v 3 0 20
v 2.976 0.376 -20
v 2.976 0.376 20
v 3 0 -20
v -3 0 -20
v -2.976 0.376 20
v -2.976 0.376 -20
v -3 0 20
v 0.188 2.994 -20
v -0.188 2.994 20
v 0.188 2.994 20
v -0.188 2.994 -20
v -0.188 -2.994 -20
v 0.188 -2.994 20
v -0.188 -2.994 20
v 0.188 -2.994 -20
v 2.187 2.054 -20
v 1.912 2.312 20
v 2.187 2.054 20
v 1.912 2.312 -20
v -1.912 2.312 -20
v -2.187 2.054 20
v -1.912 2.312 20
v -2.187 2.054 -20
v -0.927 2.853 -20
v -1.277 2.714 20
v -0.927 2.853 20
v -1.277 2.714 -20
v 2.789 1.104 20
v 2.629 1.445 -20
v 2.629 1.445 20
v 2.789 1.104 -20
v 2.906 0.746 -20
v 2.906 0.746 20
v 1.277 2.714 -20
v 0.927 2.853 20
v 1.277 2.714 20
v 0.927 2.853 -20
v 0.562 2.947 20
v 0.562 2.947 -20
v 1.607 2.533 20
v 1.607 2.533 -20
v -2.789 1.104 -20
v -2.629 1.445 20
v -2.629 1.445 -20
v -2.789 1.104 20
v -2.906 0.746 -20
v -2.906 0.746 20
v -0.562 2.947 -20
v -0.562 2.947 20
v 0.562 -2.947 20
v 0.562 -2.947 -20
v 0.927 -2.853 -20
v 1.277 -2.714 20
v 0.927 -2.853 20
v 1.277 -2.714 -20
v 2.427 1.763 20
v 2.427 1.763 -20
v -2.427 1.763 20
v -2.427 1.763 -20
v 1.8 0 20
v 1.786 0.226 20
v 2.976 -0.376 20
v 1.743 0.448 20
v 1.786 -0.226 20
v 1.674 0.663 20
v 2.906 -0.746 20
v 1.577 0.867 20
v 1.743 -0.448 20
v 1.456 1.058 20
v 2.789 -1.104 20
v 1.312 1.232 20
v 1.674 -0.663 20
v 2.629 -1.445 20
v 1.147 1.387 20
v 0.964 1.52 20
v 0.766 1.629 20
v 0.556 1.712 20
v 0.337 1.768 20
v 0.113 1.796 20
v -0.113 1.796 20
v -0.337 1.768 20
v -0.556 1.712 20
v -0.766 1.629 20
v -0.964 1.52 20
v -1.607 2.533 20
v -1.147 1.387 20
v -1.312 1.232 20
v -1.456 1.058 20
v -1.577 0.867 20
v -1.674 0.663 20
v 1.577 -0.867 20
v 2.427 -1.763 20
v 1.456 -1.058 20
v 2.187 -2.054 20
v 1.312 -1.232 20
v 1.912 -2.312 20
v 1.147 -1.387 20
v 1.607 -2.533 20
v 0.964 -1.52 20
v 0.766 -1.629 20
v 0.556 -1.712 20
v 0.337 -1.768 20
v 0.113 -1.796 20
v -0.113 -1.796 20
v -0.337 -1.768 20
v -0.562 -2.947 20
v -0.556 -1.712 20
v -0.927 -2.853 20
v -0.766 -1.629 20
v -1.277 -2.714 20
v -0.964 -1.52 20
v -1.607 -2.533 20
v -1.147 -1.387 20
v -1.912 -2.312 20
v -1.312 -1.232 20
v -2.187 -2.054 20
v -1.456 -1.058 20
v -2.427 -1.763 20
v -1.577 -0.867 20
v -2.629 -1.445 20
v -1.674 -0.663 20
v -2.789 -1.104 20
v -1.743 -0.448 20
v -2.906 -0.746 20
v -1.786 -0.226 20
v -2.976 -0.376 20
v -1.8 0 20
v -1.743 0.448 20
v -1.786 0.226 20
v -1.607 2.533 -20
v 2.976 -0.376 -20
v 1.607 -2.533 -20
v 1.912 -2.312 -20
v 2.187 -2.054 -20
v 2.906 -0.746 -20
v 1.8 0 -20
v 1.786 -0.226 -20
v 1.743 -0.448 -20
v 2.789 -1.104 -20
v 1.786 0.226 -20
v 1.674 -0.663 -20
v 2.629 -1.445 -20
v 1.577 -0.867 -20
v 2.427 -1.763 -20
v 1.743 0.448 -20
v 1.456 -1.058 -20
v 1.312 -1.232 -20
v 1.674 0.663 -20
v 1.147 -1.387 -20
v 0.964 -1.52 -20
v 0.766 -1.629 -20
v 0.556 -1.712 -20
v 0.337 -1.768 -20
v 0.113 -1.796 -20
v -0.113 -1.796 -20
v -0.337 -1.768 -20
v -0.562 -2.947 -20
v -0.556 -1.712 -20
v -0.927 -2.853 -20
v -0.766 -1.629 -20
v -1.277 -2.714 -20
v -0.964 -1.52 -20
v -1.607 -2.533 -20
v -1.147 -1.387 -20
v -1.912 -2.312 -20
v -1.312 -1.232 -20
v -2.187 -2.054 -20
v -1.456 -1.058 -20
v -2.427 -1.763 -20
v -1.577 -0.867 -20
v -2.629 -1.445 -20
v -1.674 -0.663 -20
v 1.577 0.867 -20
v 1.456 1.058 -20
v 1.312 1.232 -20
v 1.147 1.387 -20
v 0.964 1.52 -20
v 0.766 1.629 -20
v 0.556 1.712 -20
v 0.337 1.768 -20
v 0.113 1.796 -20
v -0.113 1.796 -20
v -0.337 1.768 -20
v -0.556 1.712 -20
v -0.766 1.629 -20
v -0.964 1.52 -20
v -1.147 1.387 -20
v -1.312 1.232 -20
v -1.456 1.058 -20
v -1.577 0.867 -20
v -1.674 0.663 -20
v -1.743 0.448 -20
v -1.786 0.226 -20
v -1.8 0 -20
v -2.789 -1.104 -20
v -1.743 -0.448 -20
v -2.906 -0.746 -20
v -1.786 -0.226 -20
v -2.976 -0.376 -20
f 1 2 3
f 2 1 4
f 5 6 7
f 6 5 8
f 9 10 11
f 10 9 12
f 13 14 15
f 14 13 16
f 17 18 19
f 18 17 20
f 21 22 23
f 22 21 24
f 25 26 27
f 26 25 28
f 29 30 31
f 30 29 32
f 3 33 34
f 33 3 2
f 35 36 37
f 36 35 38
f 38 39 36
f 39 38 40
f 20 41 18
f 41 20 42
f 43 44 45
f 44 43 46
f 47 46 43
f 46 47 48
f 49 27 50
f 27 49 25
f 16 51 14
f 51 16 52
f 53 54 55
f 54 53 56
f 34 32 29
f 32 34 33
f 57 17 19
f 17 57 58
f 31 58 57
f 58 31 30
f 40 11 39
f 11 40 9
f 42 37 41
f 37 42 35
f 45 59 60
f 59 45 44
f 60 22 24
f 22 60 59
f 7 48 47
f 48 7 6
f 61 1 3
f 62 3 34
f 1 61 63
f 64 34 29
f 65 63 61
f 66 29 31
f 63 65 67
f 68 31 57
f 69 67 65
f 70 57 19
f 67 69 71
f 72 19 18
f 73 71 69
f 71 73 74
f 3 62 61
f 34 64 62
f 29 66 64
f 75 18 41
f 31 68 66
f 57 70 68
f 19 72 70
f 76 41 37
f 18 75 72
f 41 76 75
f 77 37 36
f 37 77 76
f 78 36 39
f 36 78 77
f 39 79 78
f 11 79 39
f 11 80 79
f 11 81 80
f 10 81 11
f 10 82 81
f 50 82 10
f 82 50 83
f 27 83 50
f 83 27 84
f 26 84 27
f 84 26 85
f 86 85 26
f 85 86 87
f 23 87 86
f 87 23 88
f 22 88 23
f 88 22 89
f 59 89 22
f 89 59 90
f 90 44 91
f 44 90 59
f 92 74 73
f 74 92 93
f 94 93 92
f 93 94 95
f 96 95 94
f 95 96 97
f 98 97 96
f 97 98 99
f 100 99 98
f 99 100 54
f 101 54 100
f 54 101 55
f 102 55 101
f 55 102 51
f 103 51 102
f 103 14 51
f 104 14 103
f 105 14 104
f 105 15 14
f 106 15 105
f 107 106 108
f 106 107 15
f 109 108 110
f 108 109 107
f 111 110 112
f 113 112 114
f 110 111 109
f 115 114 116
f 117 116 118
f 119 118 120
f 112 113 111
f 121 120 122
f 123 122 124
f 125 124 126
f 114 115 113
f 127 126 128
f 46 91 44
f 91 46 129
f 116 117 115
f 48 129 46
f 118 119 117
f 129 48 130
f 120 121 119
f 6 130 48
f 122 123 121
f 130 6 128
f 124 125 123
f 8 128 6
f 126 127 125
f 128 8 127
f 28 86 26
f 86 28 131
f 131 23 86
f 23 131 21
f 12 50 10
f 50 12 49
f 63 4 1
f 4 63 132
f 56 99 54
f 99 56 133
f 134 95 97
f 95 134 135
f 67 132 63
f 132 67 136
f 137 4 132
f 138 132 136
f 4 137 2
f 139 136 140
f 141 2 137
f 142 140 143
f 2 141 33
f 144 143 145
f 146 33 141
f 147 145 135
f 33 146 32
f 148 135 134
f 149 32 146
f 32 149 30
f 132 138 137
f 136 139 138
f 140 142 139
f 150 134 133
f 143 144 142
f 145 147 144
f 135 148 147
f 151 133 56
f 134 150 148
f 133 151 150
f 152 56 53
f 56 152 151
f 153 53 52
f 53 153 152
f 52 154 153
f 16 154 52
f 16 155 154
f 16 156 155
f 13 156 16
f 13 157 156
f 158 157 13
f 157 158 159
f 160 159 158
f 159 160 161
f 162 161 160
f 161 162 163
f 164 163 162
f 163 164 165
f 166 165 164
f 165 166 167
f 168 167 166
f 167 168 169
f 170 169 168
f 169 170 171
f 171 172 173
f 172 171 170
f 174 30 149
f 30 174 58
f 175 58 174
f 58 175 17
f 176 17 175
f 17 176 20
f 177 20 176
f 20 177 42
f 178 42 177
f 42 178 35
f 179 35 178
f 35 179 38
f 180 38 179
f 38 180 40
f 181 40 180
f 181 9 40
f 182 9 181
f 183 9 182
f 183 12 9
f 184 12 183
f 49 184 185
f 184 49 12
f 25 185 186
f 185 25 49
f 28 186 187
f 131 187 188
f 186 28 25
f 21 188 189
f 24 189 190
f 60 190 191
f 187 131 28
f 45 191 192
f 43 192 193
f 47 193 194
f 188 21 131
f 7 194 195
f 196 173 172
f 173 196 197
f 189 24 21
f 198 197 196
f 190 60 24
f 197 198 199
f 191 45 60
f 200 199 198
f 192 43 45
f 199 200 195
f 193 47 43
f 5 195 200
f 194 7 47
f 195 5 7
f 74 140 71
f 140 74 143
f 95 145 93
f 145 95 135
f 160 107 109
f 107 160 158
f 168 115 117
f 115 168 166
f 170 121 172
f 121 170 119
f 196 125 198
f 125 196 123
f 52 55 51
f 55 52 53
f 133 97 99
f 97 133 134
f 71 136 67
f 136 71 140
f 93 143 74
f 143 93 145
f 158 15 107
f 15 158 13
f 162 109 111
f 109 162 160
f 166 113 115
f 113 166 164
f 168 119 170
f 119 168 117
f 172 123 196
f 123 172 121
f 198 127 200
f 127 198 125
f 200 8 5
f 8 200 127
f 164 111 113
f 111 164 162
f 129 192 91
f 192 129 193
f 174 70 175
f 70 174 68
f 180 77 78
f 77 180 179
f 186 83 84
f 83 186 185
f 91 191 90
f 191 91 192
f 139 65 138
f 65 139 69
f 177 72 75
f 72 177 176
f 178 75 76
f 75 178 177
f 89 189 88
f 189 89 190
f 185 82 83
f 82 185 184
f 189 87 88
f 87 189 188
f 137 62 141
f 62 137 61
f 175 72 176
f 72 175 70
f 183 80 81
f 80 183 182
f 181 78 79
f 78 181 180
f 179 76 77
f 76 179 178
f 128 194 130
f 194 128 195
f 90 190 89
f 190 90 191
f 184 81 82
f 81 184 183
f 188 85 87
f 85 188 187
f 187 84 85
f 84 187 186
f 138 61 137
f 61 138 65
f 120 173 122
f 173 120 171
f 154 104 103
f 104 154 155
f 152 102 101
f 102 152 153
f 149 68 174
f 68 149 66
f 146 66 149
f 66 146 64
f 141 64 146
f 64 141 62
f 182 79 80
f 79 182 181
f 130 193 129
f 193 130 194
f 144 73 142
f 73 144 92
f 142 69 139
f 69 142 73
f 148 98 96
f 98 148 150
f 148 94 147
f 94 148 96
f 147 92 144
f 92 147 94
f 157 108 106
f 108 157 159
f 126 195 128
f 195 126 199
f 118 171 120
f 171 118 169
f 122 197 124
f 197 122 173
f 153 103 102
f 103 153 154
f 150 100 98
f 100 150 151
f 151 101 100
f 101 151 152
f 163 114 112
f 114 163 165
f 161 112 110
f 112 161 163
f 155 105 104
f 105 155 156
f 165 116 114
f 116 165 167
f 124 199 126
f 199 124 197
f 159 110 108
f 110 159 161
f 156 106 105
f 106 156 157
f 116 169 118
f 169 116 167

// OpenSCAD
$fn = 50;


difference() {
	union() {
		translate(v = [0, 0, -20.0000000000]) {
			cylinder(h = 40, r = 3.0000000000);
		}
	}
	union() {
		translate(v = [0, 0, -100.0000000000]) {
			cylinder(h = 200, r = 1.8000000000);
		}
	}
}
